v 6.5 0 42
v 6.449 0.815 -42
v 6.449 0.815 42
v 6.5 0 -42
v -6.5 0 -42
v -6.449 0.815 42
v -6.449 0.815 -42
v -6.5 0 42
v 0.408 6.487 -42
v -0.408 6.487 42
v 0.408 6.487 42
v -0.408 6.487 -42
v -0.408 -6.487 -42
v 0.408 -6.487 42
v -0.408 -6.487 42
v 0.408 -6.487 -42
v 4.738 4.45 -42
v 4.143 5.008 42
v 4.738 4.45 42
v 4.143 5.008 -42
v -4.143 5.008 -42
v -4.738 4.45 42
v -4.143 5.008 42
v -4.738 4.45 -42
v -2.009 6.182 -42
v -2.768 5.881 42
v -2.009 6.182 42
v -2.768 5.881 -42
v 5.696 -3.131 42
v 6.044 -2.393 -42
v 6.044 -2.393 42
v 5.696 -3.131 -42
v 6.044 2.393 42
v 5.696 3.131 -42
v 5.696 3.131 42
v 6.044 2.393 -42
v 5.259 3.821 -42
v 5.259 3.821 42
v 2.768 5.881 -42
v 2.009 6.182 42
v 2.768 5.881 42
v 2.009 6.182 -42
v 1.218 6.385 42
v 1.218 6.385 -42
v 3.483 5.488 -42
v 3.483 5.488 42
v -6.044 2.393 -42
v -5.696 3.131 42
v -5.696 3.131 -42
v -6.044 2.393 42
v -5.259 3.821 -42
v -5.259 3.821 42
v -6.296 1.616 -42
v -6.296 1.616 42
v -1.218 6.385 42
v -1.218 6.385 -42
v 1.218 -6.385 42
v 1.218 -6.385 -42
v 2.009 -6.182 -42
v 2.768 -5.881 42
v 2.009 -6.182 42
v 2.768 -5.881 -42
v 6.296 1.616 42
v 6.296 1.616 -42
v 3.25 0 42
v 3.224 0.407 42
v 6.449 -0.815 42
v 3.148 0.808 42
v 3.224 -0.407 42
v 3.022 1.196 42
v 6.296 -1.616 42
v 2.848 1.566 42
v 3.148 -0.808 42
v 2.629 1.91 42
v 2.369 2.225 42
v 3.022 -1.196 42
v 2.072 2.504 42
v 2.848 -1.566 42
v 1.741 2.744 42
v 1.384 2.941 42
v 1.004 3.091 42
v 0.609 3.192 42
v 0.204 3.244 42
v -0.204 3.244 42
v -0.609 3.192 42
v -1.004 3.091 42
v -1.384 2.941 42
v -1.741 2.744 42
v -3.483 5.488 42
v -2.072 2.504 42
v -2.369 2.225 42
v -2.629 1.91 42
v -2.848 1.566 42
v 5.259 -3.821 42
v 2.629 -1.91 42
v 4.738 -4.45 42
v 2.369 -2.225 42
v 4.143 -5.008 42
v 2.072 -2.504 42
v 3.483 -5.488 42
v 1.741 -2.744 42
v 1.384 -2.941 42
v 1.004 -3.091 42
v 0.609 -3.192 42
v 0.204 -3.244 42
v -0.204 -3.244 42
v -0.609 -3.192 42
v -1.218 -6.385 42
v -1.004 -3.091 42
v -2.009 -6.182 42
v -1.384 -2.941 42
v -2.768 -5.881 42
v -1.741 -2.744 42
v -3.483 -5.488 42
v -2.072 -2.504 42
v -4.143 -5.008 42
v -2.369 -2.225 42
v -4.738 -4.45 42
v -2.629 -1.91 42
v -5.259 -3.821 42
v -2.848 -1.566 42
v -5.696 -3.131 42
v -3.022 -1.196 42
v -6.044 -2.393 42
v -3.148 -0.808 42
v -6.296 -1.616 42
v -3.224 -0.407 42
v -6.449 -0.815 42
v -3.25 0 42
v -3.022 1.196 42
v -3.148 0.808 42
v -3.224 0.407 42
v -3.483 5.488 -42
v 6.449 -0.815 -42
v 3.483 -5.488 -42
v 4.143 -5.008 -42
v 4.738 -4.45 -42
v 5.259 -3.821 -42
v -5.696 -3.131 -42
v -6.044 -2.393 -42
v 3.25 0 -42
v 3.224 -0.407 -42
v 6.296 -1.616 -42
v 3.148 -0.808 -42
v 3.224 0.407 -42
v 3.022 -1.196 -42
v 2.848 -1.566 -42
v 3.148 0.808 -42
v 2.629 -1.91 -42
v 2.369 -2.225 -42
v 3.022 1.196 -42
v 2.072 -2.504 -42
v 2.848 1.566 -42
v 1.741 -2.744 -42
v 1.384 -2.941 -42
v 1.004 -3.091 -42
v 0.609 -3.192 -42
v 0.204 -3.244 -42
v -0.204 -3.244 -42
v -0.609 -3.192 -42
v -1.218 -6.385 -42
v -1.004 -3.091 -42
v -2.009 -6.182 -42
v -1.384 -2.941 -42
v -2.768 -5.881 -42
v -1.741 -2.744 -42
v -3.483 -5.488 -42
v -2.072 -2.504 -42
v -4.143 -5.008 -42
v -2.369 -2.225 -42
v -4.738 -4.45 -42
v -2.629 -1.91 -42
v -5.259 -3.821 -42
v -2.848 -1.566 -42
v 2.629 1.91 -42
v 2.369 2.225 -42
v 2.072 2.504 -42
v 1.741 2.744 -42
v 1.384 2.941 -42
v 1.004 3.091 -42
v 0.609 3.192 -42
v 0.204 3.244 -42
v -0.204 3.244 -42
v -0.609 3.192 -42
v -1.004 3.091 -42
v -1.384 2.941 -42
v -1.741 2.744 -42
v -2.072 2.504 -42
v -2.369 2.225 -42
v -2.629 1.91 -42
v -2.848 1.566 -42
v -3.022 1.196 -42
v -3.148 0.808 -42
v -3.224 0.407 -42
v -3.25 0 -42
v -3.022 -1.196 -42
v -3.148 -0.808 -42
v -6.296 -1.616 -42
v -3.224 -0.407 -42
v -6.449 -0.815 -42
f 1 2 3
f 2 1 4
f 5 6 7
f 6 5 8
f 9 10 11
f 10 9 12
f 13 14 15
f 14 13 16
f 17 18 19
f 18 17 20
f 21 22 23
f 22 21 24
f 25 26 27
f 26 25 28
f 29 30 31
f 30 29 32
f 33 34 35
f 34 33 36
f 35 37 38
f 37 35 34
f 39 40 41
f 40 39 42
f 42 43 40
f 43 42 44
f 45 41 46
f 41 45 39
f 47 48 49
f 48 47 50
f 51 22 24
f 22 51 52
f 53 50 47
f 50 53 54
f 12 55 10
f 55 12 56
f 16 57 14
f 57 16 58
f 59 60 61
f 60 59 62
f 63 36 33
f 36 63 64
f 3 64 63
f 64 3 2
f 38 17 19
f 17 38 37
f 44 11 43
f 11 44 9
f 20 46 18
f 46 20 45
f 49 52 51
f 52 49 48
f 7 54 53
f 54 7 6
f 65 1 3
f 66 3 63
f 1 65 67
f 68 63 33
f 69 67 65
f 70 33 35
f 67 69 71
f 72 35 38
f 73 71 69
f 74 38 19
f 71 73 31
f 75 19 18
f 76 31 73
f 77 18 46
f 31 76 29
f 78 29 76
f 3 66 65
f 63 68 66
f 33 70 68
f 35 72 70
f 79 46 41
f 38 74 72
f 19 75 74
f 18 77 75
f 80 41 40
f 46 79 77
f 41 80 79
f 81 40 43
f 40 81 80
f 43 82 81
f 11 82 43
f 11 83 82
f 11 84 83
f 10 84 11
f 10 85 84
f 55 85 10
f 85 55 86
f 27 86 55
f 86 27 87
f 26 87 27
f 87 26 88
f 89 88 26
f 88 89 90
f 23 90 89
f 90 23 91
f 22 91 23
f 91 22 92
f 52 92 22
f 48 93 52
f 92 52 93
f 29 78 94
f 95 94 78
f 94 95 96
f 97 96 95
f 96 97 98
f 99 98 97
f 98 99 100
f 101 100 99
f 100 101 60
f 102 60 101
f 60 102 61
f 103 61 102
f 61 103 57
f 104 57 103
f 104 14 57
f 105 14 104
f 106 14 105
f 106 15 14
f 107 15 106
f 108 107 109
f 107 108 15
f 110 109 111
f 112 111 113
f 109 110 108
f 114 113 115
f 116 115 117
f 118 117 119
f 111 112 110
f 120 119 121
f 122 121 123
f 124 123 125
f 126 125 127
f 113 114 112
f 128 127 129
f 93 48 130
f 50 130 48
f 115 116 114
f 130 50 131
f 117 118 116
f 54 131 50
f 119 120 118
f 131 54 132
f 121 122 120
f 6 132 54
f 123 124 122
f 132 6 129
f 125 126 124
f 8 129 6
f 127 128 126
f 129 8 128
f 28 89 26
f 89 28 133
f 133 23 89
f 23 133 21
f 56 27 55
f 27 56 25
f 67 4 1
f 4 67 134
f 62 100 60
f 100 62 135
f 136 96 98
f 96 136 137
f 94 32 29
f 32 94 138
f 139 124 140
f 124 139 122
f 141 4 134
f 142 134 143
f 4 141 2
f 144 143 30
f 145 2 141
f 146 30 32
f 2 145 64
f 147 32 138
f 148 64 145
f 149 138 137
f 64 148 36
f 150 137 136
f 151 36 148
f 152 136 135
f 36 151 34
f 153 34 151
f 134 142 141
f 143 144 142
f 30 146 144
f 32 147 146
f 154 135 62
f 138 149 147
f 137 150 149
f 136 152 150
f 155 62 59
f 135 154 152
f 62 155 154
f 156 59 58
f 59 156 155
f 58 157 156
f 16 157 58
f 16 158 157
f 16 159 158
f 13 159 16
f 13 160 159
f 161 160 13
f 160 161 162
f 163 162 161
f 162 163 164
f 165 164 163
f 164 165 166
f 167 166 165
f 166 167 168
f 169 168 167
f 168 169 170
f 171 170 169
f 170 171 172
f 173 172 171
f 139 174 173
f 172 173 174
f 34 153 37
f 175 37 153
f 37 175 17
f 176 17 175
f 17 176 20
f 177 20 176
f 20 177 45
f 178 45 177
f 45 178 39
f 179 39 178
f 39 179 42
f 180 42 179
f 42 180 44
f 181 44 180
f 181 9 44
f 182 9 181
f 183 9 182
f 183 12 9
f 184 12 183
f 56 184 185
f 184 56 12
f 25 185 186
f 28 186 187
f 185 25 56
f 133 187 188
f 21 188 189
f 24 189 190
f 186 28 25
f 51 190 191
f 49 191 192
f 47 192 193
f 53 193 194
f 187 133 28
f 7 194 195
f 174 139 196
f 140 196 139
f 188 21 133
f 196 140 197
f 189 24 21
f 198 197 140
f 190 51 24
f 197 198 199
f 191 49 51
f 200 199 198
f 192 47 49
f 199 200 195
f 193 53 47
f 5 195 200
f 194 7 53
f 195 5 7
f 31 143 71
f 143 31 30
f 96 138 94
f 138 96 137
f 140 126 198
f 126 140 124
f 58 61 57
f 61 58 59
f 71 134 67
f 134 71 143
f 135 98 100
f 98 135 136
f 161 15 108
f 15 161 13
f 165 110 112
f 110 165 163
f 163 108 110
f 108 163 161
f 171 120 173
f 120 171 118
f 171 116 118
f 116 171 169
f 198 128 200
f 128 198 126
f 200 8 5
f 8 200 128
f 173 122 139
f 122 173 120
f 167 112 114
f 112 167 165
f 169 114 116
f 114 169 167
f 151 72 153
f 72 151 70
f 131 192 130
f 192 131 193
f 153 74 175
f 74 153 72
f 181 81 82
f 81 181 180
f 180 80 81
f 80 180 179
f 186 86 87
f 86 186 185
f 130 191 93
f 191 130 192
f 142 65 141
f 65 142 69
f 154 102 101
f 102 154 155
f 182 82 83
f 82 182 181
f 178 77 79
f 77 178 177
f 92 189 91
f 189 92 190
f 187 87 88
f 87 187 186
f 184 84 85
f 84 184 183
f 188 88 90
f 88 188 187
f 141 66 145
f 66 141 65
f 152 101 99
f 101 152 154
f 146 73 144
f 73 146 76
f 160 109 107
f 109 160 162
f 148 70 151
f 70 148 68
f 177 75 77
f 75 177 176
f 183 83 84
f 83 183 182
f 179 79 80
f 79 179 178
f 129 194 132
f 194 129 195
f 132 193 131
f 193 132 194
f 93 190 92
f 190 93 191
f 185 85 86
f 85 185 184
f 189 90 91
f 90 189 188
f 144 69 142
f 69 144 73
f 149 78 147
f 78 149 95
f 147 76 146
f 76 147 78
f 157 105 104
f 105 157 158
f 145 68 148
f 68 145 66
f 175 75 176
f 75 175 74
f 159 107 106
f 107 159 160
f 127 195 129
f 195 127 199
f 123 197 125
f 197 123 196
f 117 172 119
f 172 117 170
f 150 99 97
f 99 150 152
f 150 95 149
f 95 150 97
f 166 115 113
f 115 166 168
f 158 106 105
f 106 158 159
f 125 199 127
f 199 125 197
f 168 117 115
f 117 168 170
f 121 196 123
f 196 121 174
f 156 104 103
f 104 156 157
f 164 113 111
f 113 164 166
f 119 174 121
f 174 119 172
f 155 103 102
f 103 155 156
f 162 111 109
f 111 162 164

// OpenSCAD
$fn = 50;


difference() {
	union() {
		translate(v = [0, 0, -42.0000000000]) {
			cylinder(h = 84, r = 6.5000000000);
		}
	}
	union() {
		translate(v = [0, 0, -100.0000000000]) {
			cylinder(h = 200, r = 3.2500000000);
		}
	}
}
